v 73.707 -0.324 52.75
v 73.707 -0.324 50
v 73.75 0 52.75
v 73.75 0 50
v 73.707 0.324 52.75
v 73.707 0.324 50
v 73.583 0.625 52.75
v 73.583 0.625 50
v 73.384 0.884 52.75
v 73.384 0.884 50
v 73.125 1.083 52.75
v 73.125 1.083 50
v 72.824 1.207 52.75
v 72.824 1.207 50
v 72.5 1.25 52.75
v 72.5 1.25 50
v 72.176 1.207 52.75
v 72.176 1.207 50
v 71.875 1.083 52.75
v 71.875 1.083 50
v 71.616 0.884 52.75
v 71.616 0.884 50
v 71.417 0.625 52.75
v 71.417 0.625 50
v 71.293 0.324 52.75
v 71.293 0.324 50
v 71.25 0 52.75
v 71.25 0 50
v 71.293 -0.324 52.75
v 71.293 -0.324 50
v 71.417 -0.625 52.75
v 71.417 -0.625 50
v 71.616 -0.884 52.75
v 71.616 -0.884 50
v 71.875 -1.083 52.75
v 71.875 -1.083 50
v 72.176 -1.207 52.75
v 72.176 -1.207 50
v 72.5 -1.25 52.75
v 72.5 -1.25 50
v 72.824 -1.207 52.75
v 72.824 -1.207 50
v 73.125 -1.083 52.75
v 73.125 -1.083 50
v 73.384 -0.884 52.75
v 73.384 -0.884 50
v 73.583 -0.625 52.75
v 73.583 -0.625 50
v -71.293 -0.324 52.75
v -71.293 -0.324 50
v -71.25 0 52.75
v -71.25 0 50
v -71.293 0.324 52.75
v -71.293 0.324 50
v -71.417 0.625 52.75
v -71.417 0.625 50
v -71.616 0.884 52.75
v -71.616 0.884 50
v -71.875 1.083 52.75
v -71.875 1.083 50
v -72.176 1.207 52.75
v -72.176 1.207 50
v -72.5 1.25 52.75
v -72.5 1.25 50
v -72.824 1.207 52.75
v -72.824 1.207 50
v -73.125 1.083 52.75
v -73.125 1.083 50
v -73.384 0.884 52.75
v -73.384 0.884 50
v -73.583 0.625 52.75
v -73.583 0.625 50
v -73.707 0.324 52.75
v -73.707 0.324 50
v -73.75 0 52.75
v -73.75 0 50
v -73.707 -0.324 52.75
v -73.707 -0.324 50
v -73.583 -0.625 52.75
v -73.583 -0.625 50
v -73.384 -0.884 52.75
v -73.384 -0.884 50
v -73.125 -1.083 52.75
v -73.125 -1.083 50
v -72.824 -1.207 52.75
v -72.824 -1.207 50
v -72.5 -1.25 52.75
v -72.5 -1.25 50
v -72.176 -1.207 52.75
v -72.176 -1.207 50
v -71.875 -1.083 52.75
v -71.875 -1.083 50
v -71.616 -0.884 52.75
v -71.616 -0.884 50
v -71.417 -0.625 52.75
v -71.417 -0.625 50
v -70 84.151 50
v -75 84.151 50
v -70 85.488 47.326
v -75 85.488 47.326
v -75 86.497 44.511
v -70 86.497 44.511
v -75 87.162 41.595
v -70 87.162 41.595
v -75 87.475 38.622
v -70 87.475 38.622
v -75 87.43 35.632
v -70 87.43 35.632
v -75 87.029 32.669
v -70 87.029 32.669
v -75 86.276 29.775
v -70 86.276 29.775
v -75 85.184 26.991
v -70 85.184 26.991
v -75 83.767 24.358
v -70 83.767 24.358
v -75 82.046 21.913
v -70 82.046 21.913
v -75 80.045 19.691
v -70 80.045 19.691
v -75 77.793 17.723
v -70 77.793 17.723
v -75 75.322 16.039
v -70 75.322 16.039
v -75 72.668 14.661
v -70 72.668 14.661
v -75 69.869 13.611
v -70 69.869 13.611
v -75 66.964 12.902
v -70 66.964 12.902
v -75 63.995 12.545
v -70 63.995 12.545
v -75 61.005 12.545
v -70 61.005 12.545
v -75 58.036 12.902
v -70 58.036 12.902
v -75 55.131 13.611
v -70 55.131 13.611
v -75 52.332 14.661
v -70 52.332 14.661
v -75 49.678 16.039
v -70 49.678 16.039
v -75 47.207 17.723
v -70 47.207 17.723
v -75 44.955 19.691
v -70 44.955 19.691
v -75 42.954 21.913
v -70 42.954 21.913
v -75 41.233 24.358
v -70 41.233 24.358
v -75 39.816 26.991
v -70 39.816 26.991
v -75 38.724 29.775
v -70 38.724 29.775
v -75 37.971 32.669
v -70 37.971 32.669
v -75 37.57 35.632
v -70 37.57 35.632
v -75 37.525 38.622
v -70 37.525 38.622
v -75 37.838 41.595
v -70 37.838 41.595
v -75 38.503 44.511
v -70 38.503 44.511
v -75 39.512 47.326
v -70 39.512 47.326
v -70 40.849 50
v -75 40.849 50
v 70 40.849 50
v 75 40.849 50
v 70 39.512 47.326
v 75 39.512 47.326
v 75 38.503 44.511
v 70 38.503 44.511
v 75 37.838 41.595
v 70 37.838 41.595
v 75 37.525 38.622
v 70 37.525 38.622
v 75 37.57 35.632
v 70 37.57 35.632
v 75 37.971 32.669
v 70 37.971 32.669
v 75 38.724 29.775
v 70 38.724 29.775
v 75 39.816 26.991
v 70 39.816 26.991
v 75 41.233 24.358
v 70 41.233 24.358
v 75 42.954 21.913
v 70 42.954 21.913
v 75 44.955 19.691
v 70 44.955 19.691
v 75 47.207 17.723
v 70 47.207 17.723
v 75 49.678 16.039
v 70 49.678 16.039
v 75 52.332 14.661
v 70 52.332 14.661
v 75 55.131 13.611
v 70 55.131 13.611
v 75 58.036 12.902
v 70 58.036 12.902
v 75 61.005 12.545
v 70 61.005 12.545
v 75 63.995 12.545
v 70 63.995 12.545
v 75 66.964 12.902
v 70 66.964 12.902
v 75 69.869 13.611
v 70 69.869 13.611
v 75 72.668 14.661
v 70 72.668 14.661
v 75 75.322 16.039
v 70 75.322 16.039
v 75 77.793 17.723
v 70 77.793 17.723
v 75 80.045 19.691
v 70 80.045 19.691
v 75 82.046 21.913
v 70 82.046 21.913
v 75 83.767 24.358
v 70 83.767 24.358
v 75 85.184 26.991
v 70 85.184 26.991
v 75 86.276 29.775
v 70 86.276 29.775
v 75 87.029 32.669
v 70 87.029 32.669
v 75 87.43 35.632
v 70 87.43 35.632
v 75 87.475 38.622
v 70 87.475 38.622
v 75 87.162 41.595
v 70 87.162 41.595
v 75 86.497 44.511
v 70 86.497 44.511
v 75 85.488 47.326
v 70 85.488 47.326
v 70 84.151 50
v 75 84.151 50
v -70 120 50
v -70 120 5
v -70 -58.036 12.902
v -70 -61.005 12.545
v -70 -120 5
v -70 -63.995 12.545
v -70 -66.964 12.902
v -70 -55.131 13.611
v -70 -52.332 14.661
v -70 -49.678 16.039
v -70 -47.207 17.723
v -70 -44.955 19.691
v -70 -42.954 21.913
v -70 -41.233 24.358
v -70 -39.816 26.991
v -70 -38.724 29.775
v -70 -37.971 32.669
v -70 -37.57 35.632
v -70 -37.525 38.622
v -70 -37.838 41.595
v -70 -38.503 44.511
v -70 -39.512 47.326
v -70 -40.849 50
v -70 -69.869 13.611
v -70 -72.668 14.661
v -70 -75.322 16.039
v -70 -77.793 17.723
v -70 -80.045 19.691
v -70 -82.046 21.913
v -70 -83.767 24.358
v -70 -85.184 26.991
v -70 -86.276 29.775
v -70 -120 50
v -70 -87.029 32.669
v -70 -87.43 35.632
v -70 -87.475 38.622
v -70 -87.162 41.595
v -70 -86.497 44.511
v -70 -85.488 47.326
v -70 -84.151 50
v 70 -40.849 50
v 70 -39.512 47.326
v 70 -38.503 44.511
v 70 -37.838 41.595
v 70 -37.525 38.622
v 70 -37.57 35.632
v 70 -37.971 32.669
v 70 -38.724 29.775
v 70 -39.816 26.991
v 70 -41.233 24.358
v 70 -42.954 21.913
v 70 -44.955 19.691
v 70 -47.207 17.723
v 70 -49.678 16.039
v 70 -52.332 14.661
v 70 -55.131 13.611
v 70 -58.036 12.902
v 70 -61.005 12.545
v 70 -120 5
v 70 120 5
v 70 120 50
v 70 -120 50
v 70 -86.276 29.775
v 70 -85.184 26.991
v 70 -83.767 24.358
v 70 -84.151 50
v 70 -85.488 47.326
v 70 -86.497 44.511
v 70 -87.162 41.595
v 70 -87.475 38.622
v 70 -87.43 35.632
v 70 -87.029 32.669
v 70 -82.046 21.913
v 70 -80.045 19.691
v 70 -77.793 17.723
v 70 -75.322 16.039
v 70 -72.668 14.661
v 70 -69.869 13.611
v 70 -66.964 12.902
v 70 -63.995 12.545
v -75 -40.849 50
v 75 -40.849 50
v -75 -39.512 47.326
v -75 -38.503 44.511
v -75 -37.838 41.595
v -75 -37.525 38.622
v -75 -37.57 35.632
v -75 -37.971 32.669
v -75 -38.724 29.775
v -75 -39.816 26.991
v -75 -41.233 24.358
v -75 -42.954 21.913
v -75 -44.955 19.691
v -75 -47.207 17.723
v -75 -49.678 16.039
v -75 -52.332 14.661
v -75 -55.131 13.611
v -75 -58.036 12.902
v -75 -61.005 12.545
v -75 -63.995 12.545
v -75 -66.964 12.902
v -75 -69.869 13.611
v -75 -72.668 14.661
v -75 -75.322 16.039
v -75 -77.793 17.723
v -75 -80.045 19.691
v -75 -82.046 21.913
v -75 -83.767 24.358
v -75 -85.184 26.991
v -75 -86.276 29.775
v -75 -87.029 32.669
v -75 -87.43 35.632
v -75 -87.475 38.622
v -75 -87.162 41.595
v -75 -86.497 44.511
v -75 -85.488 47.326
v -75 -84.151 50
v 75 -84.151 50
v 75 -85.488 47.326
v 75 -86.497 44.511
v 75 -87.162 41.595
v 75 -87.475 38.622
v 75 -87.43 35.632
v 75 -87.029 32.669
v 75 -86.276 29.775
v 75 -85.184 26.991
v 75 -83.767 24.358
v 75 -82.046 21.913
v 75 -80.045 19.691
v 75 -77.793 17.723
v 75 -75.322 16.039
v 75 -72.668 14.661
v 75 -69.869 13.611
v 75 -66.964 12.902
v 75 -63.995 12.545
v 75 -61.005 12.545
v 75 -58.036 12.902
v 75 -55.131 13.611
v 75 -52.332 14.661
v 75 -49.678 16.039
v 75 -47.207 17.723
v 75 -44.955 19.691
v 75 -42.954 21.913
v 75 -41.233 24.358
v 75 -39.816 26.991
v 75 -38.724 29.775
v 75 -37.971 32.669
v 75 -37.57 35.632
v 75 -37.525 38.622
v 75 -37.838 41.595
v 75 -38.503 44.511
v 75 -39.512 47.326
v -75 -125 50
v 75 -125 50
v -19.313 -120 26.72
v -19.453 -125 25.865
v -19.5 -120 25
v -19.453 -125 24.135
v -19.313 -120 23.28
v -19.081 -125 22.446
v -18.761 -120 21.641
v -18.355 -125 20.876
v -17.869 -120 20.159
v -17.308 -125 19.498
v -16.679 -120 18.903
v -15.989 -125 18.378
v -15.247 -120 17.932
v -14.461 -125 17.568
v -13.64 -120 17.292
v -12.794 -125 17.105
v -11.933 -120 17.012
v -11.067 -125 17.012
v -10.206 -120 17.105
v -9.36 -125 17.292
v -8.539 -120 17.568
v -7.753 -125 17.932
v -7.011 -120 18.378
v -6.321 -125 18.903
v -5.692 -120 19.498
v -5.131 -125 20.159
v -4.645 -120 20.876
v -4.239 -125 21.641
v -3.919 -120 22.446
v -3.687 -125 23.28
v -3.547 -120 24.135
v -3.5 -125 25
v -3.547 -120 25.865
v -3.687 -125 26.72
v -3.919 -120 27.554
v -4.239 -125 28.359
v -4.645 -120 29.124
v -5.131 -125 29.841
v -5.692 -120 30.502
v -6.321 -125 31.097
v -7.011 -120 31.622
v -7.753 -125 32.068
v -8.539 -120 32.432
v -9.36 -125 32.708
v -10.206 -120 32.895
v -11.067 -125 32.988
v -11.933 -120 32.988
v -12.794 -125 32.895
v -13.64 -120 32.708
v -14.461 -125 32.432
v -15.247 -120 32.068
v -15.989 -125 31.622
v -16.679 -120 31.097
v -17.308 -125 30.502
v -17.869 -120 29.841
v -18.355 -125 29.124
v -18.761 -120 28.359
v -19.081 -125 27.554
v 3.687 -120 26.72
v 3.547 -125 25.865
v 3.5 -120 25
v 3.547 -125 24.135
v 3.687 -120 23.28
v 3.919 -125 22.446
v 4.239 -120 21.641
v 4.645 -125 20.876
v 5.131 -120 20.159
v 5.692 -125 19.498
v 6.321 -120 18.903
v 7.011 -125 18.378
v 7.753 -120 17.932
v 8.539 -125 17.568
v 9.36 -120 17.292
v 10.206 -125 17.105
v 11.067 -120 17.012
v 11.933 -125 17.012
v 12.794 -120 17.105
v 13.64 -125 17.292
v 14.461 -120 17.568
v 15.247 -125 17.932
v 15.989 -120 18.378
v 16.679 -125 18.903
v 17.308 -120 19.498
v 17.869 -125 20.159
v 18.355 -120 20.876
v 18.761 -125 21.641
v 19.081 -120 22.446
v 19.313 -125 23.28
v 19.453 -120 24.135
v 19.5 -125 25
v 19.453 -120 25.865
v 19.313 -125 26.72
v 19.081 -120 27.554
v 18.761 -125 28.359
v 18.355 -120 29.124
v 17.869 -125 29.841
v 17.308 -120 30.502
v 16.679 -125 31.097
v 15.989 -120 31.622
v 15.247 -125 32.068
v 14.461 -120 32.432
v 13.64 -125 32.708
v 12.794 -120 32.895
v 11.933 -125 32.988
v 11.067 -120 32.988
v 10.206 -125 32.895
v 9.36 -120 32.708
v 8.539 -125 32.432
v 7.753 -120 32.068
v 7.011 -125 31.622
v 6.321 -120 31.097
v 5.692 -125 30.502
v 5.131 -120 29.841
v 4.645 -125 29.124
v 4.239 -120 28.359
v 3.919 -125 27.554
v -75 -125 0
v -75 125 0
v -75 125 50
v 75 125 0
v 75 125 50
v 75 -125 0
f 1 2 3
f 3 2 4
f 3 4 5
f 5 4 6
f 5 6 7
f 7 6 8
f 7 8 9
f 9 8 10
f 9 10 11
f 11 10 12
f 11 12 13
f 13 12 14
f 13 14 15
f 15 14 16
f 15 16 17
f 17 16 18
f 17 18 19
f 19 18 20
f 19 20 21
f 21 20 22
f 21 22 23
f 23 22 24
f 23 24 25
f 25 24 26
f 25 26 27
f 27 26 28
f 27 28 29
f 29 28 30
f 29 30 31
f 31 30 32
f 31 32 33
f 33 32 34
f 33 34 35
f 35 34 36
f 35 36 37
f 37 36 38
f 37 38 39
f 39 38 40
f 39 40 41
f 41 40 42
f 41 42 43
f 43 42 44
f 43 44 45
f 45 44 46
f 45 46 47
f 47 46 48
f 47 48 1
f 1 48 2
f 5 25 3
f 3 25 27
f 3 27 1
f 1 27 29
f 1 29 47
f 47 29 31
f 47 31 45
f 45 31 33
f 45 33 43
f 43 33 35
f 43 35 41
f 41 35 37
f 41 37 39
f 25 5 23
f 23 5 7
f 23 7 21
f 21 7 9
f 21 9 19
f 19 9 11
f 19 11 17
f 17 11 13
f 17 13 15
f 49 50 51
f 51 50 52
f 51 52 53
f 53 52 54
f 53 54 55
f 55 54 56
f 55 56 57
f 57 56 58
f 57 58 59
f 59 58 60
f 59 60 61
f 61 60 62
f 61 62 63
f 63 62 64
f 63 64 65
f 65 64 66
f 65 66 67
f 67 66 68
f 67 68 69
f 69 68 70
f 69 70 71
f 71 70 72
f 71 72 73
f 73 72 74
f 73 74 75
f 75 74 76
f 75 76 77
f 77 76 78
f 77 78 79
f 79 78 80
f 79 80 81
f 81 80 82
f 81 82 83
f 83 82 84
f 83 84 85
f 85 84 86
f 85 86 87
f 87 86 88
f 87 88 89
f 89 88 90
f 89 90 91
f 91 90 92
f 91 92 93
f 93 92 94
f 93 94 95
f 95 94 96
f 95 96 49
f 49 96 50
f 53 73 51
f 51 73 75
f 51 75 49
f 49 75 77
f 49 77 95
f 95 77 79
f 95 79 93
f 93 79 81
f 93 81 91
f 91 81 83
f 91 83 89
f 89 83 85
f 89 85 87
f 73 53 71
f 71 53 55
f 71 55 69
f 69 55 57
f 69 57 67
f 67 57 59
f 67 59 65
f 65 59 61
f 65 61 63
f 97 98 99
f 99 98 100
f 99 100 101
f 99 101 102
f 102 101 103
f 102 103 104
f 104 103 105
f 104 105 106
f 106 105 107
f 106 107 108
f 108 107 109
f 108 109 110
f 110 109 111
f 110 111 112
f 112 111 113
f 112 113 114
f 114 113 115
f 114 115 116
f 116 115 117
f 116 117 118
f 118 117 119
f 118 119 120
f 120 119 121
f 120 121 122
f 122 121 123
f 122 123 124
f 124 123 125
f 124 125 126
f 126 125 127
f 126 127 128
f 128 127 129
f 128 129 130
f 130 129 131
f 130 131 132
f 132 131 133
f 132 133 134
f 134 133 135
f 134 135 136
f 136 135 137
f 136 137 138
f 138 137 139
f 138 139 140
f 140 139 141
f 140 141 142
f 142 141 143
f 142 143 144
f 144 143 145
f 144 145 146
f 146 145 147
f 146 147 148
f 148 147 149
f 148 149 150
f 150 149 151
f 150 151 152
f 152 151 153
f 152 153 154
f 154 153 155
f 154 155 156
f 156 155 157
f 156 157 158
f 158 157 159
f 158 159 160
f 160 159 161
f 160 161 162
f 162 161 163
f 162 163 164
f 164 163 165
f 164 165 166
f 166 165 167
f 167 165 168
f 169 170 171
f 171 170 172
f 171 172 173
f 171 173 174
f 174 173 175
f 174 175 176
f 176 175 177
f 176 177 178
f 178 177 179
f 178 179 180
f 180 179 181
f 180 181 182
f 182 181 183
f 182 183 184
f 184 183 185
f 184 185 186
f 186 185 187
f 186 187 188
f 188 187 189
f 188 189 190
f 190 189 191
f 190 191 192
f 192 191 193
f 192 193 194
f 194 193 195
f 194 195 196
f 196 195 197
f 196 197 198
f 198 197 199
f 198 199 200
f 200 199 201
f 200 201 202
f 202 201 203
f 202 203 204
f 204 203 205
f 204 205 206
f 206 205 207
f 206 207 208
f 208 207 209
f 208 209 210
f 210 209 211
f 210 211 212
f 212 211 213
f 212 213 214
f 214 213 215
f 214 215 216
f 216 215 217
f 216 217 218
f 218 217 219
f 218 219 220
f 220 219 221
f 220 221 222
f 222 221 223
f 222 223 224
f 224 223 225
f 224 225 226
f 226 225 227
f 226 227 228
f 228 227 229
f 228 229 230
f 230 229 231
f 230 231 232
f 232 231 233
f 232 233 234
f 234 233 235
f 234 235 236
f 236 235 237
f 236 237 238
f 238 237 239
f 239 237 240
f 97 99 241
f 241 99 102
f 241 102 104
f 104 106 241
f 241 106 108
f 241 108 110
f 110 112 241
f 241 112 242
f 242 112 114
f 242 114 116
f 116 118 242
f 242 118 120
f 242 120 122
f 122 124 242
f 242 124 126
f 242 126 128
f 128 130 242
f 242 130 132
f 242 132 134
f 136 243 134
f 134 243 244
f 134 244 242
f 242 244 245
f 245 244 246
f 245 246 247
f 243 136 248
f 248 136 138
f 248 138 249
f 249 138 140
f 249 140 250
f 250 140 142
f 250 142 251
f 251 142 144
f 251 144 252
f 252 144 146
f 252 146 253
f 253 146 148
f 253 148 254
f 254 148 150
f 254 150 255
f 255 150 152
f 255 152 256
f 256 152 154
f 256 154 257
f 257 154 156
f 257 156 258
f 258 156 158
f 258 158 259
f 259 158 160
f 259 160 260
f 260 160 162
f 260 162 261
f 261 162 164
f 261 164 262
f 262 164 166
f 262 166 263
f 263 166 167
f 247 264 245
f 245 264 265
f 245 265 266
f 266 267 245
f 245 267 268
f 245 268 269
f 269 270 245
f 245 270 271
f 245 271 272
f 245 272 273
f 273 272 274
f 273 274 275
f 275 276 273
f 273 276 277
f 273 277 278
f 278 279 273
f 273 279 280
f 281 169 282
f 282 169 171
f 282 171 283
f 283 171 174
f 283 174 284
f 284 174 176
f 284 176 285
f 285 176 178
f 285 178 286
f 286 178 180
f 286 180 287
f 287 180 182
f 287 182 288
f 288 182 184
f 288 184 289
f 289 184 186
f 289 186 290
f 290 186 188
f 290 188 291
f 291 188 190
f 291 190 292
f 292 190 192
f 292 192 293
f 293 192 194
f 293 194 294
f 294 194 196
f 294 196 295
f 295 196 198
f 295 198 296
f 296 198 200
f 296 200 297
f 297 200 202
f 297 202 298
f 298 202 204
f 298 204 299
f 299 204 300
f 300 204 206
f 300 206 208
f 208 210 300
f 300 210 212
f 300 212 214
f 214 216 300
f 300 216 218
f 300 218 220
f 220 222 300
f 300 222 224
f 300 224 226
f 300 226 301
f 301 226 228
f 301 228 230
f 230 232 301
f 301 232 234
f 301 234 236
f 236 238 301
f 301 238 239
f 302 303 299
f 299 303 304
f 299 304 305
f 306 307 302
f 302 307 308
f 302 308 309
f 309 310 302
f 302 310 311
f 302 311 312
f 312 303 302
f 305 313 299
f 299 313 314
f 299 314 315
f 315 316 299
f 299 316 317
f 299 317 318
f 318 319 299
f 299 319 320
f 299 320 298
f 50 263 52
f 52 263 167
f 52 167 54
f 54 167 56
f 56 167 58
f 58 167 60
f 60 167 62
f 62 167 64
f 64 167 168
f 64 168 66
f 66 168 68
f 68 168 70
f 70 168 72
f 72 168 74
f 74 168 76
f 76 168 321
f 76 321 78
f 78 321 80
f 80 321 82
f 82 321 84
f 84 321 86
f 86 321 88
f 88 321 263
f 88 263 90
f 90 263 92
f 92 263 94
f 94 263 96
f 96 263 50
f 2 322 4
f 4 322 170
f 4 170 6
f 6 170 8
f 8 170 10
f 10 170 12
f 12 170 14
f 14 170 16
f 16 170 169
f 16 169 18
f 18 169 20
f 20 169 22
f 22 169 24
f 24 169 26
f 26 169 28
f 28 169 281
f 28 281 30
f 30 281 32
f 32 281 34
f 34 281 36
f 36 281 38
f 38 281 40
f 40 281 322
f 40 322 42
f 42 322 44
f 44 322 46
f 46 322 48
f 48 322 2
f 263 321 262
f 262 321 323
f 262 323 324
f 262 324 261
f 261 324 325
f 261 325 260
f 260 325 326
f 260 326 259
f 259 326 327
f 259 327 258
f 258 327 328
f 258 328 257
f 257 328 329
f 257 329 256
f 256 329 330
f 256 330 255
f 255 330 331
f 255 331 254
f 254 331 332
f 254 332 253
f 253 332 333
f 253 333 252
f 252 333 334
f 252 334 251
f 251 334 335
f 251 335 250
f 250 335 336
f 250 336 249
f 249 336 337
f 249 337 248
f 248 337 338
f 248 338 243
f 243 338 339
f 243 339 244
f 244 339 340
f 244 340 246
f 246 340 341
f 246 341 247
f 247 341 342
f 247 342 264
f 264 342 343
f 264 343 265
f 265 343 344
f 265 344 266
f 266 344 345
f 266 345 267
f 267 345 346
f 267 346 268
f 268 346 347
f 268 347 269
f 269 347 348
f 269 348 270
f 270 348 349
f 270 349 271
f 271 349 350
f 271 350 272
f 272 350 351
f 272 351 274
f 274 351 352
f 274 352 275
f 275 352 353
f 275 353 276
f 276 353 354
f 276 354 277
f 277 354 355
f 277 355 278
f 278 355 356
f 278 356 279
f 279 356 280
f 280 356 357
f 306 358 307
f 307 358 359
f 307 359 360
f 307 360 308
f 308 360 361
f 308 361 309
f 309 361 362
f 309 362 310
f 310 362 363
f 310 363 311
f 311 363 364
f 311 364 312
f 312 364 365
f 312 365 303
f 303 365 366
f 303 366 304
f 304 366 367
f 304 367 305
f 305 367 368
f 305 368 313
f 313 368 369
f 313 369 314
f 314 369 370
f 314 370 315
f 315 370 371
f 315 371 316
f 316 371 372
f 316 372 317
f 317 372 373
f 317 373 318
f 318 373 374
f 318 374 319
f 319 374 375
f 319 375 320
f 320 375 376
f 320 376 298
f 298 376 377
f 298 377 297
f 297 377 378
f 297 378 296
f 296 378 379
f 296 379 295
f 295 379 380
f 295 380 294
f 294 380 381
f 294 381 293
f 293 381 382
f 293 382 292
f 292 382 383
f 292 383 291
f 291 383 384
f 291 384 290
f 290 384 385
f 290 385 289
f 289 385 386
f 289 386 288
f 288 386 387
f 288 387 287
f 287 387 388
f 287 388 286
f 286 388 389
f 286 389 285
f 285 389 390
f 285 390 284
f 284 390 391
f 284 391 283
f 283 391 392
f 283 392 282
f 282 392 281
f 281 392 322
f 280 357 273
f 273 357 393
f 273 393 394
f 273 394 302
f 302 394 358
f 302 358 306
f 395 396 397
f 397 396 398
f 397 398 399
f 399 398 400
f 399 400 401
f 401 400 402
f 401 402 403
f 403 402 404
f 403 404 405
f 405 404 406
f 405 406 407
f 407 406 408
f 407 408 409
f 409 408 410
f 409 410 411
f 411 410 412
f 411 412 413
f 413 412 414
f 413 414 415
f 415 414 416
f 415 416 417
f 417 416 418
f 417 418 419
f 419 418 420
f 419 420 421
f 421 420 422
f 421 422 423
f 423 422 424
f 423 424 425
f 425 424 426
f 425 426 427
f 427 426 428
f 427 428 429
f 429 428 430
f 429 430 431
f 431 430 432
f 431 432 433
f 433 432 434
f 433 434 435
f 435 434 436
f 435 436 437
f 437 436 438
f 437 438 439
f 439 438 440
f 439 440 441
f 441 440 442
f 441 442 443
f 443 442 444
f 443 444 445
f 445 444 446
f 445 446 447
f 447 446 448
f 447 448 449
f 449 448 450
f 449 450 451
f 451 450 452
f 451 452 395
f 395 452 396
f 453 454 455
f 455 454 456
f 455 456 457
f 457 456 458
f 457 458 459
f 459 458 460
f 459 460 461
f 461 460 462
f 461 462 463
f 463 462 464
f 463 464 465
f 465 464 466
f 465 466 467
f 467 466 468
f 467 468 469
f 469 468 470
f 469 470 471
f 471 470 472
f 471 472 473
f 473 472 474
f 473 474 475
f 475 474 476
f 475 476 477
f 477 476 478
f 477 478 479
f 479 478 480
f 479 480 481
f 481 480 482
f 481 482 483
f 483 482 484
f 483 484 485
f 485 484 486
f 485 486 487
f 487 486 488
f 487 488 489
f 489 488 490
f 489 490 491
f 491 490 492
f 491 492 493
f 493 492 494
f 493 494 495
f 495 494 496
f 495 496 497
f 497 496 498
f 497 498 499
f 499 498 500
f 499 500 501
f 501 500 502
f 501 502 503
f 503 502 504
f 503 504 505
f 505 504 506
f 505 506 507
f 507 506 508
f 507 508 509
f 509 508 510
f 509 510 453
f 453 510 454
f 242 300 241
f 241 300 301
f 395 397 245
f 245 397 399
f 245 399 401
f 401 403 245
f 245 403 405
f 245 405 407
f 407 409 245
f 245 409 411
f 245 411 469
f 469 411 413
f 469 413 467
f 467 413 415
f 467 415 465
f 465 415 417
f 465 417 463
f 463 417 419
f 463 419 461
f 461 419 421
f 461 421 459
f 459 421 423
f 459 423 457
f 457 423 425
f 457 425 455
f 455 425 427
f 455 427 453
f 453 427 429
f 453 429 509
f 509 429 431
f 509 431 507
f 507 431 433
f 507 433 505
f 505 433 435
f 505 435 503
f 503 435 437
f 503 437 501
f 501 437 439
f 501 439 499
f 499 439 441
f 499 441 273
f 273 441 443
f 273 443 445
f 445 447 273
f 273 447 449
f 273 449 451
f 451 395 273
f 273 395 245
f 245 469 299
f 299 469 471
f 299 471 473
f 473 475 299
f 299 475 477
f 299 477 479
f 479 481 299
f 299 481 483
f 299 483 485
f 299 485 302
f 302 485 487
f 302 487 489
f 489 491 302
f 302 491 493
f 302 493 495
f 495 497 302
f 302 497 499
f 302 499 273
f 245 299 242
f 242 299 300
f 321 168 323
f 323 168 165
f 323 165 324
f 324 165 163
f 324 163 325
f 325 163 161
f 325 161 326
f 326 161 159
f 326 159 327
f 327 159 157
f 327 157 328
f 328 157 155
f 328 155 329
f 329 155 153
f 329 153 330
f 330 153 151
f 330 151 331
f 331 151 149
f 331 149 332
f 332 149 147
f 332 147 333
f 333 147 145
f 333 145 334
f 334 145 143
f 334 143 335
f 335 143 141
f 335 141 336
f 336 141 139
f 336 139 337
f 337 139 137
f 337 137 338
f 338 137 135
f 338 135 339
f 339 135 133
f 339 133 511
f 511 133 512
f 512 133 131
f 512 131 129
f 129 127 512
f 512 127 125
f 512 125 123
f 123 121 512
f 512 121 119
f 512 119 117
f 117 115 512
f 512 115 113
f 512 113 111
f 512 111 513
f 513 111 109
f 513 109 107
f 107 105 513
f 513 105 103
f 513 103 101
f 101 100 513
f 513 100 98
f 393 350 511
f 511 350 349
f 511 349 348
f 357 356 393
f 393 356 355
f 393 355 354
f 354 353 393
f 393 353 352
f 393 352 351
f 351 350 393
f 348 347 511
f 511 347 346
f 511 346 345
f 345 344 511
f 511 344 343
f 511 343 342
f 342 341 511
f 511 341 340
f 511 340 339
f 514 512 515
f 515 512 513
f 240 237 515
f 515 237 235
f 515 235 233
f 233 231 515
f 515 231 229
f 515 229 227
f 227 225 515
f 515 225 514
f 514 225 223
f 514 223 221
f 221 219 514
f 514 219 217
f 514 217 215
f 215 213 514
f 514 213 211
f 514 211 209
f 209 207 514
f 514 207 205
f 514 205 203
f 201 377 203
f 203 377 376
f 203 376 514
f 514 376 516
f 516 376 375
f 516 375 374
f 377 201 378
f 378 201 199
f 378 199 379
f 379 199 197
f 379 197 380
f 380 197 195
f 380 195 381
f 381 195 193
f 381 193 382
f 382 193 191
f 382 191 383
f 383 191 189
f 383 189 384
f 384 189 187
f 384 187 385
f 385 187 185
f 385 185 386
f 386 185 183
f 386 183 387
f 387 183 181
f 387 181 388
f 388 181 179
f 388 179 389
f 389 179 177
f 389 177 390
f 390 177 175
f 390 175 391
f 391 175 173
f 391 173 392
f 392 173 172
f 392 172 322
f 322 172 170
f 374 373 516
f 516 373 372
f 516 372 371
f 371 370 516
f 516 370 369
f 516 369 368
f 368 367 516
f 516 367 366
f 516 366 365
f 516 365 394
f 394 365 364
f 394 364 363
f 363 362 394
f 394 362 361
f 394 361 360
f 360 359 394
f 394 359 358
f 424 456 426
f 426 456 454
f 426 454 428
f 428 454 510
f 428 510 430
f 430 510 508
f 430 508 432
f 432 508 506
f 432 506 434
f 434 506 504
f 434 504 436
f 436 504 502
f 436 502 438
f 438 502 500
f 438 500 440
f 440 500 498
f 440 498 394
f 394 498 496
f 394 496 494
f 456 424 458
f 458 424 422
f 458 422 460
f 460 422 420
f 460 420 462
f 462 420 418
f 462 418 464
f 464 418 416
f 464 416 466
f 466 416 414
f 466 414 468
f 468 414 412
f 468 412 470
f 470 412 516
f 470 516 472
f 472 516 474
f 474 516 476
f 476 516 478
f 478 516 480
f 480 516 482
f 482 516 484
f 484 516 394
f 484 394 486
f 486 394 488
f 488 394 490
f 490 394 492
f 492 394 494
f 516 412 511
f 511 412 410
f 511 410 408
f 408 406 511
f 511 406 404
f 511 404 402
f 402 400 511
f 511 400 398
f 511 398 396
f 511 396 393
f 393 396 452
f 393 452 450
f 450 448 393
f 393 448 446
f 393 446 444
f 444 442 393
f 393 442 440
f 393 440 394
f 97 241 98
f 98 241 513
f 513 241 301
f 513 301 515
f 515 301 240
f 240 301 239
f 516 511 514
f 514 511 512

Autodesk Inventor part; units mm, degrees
ref_plane "YZ Plane" through (0, 0, 0) normal (1, 0, 0) x (0, 1, 0)
ref_plane "XZ Plane" through (0, 0, 0) normal (0, 1, 0) x (-1, 0, 0)
ref_plane "XY Plane" through (0, 0, 0) normal (0, 0, 1) x (1, 0, 0)
sketch "Sketch1" plane through (0, 0, 0) normal (0, 0, 1) x (1, 0, 0)
  line L0 (-75, 125) -> (75, 125)
  line L1 (75, 125) -> (75, -125)
  line L2 (75, -125) -> (-75, -125)
  line L3 (-75, -125) -> (-75, 125)
  line L4 (-75, 125) -> (75, -125) construction
  line L5 (75, 125) -> (-75, -125) construction
  point P0 (0, 0)
  dimension "d0" = 150
  dimension "d1" = 250
extrude "Extrusion1" add sketch "Sketch1" along normal blind 50
shell "Shell1" thickness 5 removed faces 1 at (-25, -41.6667, 50)
sketch "Sketch2" plane through (-75, -125, 0) normal (0, -1, 0) x (1, 0, 0)
  line L0 (75, 0) -> (75, 50)
  line L1 (150, 50) -> (0, 50) projected
  line L2 (52.5, 35) -> (97.5, 35)
  line L3 (97.5, 35) -> (97.5, 15)
  line L4 (97.5, 15) -> (52.5, 15)
  line L5 (52.5, 15) -> (52.5, 35)
  line L6 (52.5, 35) -> (97.5, 15) construction
  line L7 (97.5, 35) -> (52.5, 15) construction
  line L8 (97.5, 25) -> (94.5, 25)
  line L9 (94.5, 25) -> (78.5, 25)
  line L10 (52.5, 25) -> (55.5, 25)
  line L11 (55.5, 25) -> (71.5, 25)
  circle A0 centre (86.5, 25) radius 8
  circle A1 centre (63.5, 25) radius 8
  point P0 (75, 25)
  dimension "d5" = 45
  dimension "d6" = 20
  dimension "d7" = 3
  dimension "d8" = 16
  dimension "d9" = 3
  dimension "d10" = 16
  dimension "d11" = 16
  dimension "d12" = 16
extrude "Extrusion2" cut sketch "Sketch2" against normal blind 86 contours A1 L11 | L11 A1 | A0 L9 | L9 A0
sketch "Sketch3" plane through (-75, -125, 0) normal (-1, 0, 0) x (0, 0, 1)
  line L0 (0, 125) -> (50, 125)
  line L1 (50, 5) -> (50, 245) projected
  line L2 (25, 125) -> (25, 0)
  line L3 (0, 0) -> (50, 0) projected
  line L4 (25, 62.5) -> (50, 62.5)
  circle A0 centre (37.5, 62.5) radius 25
  dimension "d15" = 50
extrude "Extrusion3" cut sketch "Sketch3" against normal blind 192.25 contours A0 L1 L4 L2 | L2 A0 | A0 L1 | L4 L1 A0 L2
sketch "Sketch4" plane through (-75, -125, 0) normal (-1, 0, 0) x (0, 0, 1)
  line L0 (0, 125) -> (50, 125)
  line L1 (50, 245) -> (50, 84.1506) projected
  line L2 (25, 125) -> (25, 250)
  line L3 (0, 250) -> (50, 250) projected
  line L4 (25, 187.5) -> (50, 187.5)
  circle A0 centre (37.5, 187.5) radius 25
  dimension "d18" = 50
extrude "Extrusion4" cut sketch "Sketch4" against normal blind 216.5 contours A0 L2 | L2 L4 L1 A0 | L1 A0 | L2 A0 L1 L4
sketch "Sketch5" plane through (0, 0, 50) normal (0, 0, 1) x (1, 0, 0)
  line L0 (-75, 40.8494) -> (-75, -40.8494) projected
  line L1 (-75, 0) -> (-70, 0)
  line L2 (-70, -40.8494) -> (-70, 40.8494) projected
  circle A0 centre (-72.5, 0) radius 1.25
  point P0 (0, 0)
  dimension "d21" = 2.5
extrude "Extrusion5" add sketch "Sketch5" along normal blind 2.75
sketch "Sketch6" plane through (0, 0, 50) normal (0, 0, 1) x (1, 0, 0)
  line L0 (70, 40.8494) -> (70, -40.8494) projected
  line L1 (70, 0) -> (75, 0)
  line L2 (75, -125) -> (75, 125) projected
  circle A0 centre (72.5, 0) radius 1.25
  point P0 (0, 0)
  dimension "d24" = 2.5
extrude "Extrusion6" add sketch "Sketch6" along normal blind 2.75
sketch "Sketch7" plane through (75, -125, 0) normal (1, 0, 0) x (0, 0, -1)
  point P0 (0, 125)
properties part number "broomba top"
